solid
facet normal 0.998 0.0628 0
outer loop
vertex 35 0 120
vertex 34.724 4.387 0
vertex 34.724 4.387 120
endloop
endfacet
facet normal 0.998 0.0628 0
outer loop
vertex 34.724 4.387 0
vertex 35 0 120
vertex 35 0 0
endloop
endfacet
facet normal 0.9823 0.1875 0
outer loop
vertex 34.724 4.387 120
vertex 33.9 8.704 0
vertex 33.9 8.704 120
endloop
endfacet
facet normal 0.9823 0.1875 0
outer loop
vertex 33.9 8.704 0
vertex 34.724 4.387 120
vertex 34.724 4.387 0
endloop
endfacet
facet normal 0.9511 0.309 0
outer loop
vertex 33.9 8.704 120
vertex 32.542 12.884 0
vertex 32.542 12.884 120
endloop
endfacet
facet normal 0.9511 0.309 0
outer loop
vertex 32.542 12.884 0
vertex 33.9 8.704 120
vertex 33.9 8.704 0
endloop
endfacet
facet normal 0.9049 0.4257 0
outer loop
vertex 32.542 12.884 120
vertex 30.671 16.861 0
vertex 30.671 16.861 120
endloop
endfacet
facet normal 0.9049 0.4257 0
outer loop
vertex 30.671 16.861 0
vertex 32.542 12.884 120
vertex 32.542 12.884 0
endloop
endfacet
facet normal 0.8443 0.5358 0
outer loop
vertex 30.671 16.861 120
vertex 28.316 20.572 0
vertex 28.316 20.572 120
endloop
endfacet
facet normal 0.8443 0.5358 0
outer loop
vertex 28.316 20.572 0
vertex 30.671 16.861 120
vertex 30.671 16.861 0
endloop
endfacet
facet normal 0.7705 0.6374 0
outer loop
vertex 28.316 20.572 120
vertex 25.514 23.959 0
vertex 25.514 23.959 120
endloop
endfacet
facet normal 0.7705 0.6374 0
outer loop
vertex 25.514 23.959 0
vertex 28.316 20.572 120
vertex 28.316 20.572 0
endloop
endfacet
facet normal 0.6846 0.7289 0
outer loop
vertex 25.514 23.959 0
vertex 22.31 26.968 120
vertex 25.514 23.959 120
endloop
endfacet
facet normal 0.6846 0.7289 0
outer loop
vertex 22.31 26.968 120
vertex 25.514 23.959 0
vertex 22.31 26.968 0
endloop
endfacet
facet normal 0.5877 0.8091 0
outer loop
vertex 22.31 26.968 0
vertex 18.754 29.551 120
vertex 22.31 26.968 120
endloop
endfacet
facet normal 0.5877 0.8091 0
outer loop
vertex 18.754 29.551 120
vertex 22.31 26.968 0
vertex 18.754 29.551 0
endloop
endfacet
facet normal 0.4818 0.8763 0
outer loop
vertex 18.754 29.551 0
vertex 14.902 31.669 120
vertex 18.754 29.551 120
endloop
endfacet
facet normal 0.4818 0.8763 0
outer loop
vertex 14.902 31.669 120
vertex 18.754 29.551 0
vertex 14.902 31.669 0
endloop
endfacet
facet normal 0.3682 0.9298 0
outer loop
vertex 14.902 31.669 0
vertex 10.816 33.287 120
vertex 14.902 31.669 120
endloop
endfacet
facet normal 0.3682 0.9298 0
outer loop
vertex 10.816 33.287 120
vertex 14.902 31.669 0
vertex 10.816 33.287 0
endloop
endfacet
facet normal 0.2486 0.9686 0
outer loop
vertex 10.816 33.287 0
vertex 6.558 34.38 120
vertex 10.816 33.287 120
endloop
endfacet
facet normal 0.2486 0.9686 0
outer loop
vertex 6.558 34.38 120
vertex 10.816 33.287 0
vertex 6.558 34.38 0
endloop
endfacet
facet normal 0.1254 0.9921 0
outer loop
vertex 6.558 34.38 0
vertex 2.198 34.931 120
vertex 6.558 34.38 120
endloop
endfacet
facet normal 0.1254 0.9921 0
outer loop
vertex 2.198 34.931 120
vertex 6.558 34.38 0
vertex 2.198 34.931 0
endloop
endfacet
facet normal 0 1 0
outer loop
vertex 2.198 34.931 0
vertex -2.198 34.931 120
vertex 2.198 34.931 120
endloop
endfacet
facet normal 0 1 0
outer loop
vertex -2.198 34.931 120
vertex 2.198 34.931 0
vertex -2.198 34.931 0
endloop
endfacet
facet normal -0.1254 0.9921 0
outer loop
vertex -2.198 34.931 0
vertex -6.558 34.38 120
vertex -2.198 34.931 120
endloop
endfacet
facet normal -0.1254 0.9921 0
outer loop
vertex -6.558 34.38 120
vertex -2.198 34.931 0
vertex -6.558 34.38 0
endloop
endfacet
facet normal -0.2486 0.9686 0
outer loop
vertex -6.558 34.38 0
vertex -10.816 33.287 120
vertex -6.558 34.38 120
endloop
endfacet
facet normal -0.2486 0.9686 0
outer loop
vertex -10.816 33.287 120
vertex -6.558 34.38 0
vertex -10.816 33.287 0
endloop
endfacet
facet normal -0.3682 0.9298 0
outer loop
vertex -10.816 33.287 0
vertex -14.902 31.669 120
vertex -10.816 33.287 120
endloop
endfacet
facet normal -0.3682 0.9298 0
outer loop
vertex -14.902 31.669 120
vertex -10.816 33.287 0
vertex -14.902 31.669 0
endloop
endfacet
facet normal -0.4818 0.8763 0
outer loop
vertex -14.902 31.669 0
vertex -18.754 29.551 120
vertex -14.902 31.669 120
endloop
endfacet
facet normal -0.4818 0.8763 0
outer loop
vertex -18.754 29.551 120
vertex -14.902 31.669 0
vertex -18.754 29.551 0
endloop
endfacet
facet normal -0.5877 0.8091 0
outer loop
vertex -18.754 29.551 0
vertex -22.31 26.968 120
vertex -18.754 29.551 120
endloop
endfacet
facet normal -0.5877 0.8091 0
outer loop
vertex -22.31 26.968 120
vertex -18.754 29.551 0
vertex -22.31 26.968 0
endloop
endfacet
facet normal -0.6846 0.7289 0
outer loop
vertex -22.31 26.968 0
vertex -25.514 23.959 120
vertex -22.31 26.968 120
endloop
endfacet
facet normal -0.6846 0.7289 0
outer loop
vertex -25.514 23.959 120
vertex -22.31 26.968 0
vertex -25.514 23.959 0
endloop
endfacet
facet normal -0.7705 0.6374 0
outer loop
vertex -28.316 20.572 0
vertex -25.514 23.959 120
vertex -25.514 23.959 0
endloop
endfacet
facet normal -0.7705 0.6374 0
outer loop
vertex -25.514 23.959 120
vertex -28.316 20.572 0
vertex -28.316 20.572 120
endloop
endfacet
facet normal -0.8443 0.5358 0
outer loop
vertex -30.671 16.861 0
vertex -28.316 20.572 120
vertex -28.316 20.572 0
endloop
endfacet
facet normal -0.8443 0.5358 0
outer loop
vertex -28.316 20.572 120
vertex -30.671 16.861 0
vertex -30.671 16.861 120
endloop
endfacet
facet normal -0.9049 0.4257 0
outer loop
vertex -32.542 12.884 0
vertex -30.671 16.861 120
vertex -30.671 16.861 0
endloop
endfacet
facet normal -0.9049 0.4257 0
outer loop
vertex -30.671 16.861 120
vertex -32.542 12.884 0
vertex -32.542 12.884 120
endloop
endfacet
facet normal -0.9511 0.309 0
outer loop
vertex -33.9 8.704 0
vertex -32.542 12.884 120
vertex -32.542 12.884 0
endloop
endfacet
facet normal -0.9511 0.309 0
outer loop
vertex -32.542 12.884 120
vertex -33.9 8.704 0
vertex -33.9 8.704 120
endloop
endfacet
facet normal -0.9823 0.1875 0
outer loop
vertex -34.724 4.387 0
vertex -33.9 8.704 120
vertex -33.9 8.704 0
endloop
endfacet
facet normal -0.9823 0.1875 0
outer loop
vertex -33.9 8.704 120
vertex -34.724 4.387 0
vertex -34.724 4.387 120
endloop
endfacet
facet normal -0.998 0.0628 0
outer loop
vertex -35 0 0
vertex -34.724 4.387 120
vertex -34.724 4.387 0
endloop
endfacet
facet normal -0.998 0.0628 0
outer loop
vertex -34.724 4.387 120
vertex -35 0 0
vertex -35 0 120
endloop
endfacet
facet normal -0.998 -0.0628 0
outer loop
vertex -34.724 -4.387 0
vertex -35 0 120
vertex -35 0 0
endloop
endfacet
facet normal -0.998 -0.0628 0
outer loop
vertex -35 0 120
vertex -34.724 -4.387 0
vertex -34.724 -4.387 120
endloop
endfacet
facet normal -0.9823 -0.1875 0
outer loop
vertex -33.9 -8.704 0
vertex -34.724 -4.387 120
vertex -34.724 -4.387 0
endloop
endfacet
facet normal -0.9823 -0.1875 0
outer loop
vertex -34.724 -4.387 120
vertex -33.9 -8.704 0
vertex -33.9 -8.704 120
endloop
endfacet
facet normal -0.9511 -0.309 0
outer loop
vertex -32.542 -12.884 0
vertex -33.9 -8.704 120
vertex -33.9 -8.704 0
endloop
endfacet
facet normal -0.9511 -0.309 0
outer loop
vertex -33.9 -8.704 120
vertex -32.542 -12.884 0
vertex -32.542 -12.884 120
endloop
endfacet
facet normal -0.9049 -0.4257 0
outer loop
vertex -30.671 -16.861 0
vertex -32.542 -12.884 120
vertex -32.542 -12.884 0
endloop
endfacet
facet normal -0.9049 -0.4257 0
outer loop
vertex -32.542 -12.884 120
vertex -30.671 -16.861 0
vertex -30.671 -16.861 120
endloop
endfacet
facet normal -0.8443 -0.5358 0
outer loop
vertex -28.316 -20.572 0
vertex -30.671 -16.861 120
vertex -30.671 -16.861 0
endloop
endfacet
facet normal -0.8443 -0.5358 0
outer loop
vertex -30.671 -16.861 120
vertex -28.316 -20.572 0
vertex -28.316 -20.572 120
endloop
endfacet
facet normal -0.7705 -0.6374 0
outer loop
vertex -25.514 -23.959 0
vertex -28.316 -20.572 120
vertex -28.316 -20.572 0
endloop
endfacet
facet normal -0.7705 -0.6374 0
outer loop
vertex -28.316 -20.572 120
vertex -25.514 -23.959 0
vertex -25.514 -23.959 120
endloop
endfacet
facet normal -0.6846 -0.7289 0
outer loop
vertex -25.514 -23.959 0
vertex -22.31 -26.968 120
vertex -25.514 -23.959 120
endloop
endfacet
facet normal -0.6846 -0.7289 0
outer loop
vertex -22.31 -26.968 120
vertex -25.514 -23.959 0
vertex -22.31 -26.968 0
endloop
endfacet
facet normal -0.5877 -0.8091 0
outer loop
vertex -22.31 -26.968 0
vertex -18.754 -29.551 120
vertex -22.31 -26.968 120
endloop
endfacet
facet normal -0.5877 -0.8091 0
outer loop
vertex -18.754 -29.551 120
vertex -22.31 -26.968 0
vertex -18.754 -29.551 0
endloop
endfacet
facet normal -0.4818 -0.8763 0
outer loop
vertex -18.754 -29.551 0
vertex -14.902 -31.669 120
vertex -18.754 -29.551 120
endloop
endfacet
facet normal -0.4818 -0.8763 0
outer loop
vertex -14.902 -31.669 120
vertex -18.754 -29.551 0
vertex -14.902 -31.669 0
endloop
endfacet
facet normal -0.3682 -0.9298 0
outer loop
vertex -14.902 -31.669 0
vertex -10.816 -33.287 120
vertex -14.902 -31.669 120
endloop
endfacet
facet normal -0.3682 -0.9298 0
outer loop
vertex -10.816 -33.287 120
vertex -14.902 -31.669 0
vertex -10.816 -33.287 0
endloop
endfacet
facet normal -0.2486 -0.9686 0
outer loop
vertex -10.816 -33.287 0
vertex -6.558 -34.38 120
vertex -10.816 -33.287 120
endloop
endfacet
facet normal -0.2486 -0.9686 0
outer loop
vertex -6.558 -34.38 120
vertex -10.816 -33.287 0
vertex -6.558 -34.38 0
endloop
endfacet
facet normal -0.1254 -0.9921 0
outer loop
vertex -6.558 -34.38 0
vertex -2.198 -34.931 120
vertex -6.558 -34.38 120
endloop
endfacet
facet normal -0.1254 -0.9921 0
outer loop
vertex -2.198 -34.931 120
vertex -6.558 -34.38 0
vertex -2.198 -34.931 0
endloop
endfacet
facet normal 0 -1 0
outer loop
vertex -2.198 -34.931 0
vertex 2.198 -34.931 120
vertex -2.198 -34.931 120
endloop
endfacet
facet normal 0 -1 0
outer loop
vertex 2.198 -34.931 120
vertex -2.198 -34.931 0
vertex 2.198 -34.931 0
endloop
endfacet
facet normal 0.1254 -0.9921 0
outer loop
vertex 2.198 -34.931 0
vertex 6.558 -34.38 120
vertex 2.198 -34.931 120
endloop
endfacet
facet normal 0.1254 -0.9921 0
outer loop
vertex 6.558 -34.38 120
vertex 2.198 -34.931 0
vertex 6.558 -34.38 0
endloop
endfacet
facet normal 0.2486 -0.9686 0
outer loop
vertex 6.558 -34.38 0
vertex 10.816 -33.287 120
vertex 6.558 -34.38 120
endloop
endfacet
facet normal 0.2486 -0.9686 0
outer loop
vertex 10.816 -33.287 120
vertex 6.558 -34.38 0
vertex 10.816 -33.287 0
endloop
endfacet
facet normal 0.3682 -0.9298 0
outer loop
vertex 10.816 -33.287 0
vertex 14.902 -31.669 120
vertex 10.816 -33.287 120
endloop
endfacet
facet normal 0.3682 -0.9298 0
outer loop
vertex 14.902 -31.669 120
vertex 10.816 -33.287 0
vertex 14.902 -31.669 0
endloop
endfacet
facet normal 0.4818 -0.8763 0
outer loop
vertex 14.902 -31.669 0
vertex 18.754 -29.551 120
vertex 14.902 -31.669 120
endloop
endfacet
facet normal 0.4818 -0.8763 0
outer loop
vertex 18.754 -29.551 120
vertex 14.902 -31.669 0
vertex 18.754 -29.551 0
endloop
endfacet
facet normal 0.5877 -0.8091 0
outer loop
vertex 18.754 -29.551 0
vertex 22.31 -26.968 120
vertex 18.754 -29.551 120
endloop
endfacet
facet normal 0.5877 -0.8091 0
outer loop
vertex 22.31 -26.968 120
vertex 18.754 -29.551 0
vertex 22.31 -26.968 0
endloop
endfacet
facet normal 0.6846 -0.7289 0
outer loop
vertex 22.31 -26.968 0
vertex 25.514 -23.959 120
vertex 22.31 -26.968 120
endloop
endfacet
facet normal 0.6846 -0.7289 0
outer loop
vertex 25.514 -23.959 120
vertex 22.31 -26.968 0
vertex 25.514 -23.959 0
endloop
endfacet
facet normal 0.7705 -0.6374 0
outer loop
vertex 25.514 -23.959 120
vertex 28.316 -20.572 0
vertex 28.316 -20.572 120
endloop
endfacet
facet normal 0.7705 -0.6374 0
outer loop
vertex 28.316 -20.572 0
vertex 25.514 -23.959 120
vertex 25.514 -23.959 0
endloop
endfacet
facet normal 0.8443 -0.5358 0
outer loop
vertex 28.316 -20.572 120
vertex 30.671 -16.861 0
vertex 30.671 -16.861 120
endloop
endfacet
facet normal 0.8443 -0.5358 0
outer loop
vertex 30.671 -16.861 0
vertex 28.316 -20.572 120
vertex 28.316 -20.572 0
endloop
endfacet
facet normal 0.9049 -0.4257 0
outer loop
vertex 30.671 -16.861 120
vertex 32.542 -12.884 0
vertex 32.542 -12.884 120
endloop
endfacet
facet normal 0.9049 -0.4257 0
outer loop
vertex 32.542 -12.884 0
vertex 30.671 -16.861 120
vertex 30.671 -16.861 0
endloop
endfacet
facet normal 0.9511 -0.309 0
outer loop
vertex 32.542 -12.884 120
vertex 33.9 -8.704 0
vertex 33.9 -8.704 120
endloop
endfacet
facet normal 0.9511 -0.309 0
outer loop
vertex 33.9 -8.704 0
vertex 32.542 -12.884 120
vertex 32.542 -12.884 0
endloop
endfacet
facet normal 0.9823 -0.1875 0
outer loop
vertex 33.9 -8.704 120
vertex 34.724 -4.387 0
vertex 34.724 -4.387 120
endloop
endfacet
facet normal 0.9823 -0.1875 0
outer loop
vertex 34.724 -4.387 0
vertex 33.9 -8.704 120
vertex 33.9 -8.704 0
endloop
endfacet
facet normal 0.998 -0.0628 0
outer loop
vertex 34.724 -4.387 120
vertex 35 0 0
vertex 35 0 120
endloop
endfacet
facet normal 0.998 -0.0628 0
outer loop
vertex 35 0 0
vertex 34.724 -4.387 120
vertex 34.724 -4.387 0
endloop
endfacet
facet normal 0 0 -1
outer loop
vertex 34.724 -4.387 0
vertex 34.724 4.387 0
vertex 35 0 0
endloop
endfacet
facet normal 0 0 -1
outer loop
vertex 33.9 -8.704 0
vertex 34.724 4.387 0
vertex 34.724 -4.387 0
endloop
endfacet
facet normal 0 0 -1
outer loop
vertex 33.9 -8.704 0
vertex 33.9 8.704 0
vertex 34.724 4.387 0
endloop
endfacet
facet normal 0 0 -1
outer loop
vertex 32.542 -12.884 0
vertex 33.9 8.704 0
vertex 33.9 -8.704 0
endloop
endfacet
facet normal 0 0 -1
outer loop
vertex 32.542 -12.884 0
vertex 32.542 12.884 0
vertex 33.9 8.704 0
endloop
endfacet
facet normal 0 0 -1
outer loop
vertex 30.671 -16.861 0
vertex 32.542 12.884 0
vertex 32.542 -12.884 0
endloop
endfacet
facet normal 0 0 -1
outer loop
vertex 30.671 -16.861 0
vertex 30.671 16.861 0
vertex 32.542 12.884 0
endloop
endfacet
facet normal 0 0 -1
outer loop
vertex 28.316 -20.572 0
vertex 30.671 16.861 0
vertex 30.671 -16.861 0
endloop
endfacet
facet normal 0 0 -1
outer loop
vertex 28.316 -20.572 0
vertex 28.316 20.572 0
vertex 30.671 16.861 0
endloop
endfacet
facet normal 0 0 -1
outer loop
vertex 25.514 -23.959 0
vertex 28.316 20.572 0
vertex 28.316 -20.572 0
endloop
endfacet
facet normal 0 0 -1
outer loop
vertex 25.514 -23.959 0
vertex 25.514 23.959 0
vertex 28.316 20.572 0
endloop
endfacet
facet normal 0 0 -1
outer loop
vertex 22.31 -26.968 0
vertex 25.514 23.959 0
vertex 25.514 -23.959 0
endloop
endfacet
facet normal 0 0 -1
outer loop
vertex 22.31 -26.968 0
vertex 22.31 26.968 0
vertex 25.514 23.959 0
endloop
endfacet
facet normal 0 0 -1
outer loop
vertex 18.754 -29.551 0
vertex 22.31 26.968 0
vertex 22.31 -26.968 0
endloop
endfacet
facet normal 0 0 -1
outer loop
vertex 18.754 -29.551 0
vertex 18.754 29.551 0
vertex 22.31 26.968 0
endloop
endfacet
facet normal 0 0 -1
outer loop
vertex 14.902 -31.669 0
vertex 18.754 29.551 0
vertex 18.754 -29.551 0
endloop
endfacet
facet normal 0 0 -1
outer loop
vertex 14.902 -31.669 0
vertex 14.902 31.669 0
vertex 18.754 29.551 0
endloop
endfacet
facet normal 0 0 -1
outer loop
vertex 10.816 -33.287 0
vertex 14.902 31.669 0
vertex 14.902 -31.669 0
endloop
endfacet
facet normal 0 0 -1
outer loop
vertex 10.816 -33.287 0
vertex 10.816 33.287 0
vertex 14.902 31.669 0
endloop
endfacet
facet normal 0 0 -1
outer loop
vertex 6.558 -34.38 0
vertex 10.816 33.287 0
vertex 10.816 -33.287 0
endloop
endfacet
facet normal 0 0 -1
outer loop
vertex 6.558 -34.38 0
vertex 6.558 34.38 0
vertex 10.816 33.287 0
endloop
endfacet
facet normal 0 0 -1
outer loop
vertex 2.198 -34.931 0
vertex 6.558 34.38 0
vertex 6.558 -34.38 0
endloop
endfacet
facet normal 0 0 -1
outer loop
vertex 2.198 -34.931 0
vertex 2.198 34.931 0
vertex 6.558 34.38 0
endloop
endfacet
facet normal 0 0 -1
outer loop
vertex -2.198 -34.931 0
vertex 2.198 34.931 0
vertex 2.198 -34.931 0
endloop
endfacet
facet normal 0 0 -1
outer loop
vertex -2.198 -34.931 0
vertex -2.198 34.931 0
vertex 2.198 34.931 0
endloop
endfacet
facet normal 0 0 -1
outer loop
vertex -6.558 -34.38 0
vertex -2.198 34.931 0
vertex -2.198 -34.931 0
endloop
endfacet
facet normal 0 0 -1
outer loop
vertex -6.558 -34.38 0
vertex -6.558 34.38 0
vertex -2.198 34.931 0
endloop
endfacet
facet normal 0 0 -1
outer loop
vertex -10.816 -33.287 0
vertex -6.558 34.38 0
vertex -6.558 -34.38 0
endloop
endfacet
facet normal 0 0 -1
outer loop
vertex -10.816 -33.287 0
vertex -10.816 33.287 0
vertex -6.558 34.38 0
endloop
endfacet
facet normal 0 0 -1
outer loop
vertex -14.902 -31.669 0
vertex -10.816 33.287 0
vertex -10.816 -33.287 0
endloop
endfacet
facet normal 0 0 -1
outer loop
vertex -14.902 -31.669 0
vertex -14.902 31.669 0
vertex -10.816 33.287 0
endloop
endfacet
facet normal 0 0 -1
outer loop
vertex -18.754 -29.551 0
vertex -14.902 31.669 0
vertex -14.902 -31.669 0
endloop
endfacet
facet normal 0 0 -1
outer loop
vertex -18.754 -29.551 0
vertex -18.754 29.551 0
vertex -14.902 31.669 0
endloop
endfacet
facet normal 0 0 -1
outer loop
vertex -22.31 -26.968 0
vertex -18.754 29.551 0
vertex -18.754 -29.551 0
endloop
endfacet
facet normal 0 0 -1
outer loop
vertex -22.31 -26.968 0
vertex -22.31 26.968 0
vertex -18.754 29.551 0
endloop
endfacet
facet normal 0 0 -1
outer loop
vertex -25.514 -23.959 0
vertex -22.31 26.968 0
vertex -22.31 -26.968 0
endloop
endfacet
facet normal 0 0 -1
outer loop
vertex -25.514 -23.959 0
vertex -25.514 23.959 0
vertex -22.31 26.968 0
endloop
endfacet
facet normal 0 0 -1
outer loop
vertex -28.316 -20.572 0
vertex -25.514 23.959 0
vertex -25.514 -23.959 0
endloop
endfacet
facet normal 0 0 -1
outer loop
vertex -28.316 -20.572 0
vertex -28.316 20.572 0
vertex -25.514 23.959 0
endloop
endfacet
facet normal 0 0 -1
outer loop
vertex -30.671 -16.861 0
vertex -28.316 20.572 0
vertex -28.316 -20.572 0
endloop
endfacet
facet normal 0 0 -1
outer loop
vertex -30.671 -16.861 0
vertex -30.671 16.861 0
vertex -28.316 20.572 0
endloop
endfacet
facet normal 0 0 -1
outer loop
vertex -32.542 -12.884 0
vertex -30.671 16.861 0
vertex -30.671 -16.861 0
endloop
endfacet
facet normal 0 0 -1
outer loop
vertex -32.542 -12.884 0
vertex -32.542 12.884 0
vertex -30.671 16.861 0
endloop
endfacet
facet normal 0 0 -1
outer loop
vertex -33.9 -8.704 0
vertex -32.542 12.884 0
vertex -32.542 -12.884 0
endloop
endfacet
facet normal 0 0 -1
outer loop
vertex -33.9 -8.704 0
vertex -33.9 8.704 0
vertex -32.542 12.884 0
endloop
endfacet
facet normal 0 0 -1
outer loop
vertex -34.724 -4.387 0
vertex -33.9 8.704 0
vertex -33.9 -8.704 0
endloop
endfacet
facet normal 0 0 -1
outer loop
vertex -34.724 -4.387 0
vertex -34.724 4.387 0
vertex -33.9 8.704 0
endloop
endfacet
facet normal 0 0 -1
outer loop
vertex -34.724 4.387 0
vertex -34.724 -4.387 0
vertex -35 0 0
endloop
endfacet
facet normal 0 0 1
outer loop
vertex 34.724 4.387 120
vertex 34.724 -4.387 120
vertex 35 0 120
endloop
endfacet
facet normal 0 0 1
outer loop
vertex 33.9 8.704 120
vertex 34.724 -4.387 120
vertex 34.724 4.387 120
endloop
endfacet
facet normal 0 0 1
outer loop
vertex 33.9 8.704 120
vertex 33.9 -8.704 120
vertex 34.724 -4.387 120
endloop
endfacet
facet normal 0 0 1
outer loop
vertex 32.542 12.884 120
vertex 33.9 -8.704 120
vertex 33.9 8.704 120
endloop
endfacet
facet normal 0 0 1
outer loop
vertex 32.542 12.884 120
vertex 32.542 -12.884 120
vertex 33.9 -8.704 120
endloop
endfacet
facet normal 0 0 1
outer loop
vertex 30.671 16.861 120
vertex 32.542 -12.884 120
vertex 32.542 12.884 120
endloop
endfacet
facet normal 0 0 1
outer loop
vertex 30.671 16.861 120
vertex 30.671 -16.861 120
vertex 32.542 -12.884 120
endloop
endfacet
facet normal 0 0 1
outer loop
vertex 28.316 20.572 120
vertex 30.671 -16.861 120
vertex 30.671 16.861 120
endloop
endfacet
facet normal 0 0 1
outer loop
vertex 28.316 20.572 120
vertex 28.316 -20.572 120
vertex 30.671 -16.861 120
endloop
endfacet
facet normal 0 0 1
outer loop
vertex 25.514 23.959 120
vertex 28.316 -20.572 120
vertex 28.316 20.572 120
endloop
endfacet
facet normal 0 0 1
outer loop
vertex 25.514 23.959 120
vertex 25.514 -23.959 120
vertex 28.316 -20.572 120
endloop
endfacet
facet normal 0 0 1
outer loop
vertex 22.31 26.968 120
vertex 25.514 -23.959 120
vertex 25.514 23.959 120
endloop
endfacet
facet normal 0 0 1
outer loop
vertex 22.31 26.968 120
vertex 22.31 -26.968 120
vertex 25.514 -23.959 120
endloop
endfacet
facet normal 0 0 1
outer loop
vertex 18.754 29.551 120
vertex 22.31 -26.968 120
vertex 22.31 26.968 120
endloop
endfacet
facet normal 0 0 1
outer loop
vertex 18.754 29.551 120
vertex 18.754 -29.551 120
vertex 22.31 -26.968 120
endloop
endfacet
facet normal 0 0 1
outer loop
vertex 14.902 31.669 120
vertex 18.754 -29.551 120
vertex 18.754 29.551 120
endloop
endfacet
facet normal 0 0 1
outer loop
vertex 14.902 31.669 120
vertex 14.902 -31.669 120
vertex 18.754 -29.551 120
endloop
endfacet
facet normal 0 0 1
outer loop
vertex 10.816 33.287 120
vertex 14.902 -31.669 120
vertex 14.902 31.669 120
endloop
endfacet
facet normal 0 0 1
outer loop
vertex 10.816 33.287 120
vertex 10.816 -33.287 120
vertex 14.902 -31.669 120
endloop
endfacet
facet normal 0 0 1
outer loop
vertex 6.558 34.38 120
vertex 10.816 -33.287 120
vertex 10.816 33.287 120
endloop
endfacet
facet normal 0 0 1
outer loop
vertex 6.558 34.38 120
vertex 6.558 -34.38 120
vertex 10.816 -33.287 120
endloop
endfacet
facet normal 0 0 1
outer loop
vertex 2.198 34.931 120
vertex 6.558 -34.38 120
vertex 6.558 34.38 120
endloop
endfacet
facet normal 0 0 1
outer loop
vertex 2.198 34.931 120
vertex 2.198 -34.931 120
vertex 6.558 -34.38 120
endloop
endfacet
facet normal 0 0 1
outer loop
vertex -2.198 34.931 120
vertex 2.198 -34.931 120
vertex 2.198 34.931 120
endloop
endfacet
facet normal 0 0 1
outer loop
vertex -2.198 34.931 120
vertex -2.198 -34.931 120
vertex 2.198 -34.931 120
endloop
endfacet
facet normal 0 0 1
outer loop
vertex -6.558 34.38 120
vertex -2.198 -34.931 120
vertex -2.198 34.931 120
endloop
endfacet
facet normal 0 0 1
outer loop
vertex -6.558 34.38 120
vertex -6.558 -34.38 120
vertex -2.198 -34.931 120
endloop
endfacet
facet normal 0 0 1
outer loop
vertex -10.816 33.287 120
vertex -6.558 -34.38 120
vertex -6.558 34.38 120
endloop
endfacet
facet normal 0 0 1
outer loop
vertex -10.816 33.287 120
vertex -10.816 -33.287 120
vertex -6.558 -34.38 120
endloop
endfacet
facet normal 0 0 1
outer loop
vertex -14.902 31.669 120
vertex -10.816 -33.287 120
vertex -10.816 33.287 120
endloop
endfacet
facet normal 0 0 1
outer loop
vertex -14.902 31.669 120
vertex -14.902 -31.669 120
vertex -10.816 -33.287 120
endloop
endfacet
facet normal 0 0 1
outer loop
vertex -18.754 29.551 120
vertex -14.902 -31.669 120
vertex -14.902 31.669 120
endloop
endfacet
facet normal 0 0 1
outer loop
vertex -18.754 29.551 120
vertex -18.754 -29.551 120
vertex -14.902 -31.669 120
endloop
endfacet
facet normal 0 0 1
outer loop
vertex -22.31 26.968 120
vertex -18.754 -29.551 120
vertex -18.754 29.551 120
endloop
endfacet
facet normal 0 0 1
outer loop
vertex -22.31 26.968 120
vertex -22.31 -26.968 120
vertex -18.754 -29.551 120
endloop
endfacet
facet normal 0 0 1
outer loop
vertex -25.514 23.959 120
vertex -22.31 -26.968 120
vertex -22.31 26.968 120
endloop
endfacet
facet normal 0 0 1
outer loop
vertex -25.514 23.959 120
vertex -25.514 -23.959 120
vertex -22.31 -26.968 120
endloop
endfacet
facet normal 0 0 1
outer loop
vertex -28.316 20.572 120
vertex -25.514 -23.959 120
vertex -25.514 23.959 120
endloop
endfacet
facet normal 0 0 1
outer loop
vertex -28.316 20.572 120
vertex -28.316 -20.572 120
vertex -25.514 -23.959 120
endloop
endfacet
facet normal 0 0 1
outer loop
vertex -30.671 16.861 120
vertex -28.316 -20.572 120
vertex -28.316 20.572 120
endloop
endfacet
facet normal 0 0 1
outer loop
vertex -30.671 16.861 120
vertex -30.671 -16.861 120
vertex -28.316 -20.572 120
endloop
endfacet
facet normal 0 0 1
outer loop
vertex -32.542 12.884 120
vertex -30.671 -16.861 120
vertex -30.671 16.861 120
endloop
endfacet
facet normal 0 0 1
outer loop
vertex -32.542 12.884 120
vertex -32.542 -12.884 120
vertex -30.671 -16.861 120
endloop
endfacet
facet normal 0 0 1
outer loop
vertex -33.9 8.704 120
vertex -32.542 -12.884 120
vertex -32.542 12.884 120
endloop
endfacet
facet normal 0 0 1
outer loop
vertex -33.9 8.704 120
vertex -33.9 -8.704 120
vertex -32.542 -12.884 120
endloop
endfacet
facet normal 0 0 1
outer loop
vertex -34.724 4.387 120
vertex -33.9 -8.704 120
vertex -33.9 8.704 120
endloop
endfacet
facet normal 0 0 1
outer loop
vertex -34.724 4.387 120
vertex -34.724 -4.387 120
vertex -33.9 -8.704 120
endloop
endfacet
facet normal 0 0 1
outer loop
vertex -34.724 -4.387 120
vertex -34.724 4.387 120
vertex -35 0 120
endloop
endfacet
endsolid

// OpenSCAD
$fn=50;

largo=120;
diametro1=70;

cylinder(h=largo,r=diametro1/2);
